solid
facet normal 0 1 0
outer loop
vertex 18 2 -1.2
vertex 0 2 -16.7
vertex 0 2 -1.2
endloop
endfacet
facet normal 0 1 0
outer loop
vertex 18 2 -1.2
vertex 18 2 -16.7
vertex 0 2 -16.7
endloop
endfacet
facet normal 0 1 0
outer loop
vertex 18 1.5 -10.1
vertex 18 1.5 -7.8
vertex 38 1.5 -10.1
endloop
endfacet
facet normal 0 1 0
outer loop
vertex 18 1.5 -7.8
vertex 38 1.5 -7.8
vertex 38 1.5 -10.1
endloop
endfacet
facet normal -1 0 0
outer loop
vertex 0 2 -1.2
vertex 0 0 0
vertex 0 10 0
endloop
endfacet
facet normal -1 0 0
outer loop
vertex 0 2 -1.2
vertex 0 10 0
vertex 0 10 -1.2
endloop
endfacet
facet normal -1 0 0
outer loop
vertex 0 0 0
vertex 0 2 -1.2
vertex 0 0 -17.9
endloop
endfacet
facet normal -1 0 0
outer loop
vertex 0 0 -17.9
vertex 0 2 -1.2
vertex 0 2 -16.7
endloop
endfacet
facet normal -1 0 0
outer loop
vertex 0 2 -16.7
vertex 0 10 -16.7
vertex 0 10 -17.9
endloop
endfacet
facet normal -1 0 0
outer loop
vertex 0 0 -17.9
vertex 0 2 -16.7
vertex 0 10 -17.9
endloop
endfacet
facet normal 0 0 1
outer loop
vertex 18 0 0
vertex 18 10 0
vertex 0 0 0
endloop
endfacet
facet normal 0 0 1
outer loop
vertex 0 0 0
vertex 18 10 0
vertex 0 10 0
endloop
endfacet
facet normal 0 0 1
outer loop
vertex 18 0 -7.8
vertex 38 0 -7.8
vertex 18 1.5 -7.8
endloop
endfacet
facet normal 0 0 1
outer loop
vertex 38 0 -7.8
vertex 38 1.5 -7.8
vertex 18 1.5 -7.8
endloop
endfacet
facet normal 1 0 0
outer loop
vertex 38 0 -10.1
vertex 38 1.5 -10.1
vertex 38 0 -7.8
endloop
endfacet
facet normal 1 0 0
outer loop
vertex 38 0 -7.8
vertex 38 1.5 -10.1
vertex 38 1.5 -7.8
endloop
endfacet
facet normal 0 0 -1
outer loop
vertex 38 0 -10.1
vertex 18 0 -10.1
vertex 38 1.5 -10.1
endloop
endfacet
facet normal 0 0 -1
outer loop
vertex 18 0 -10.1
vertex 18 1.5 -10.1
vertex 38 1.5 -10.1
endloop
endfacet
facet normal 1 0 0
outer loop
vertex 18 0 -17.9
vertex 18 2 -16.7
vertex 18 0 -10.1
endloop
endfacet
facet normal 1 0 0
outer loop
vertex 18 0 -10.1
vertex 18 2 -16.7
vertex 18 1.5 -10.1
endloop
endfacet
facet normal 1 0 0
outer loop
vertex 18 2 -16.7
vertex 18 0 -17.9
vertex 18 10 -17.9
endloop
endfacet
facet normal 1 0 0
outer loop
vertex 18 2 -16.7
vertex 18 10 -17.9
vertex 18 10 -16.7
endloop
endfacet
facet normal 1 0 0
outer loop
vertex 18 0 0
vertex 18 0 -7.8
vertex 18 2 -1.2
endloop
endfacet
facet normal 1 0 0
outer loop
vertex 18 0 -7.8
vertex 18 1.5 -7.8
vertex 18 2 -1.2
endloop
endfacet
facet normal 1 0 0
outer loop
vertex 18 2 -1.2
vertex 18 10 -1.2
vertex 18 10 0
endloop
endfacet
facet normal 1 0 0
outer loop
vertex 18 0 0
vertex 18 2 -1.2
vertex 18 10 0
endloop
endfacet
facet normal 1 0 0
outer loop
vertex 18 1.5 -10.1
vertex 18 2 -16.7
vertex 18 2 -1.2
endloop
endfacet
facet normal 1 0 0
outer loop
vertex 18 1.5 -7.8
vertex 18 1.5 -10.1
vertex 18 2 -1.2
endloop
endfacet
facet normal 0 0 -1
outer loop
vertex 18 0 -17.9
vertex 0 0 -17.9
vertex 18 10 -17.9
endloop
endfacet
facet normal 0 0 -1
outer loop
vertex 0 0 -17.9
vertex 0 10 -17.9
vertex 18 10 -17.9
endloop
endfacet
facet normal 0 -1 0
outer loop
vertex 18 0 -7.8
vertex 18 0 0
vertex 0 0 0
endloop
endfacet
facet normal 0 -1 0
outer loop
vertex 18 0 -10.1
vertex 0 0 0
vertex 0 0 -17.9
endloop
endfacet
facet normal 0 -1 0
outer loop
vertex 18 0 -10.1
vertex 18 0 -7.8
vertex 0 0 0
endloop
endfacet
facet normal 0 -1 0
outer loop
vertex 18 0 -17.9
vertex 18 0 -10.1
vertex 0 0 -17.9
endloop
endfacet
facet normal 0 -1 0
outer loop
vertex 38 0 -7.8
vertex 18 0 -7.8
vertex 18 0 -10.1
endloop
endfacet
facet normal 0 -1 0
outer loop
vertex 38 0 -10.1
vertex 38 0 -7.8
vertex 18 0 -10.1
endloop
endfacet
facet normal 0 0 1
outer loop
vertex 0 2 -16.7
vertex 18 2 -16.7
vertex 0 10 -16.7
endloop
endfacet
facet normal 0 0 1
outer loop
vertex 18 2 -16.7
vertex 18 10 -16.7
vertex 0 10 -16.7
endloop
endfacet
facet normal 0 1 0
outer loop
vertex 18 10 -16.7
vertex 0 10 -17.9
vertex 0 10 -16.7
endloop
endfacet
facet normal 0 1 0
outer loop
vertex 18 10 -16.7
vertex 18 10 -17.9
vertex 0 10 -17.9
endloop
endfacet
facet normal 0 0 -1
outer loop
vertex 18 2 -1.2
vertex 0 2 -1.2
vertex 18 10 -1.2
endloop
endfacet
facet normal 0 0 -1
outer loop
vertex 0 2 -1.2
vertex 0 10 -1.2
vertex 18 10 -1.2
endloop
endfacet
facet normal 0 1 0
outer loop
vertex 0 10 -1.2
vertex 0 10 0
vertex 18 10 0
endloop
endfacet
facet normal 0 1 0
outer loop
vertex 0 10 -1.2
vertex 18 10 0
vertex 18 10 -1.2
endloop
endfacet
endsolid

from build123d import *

# Parameters (mm, degrees)
EXTRUDE_1_DEPTH = 1.5
SKETCH_2_W      = 18
SKETCH_2_H      = 17.9
EXTRUDE_2_DEPTH = 0.5
SKETCH_3_W      = 18
SKETCH_3_H      = 1.2
EXTRUDE_3_DEPTH = 8


with BuildPart() as part:
    # 草图1 → 凸台-拉伸1 (new body)
    with BuildSketch(Plane(origin=(0, 0, 0), x_dir=(1, 0, 0), z_dir=(0, 1, 0))):
        Polygon((18, 10.1), (18, 17.9), (0, 17.9), (0, 0), (18, 0), (18, 7.8), (38, 7.8), (38, 10.1), align=None)
    extrude(amount=EXTRUDE_1_DEPTH)

    # 草图2 → 凸台-拉伸2 (add)
    with BuildSketch(Plane(origin=(0, 1.5, 0), x_dir=(1, 0, 0), z_dir=(0, 1, 0))):
        with Locations((9, 8.95)):
            Rectangle(SKETCH_2_W, SKETCH_2_H)
    extrude(amount=EXTRUDE_2_DEPTH)

    # 草图3 → 凸台-拉伸3 (add)
    with BuildSketch(Plane(origin=(0, 2, 0), x_dir=(1, 0, 0), z_dir=(0, 1, 0))):
        with Locations((9, 17.3)):
            Rectangle(SKETCH_3_W, SKETCH_3_H)
        with Locations((9, 0.6)):
            Rectangle(SKETCH_3_W, SKETCH_3_H)
    extrude(amount=EXTRUDE_3_DEPTH)


solid = part.part
